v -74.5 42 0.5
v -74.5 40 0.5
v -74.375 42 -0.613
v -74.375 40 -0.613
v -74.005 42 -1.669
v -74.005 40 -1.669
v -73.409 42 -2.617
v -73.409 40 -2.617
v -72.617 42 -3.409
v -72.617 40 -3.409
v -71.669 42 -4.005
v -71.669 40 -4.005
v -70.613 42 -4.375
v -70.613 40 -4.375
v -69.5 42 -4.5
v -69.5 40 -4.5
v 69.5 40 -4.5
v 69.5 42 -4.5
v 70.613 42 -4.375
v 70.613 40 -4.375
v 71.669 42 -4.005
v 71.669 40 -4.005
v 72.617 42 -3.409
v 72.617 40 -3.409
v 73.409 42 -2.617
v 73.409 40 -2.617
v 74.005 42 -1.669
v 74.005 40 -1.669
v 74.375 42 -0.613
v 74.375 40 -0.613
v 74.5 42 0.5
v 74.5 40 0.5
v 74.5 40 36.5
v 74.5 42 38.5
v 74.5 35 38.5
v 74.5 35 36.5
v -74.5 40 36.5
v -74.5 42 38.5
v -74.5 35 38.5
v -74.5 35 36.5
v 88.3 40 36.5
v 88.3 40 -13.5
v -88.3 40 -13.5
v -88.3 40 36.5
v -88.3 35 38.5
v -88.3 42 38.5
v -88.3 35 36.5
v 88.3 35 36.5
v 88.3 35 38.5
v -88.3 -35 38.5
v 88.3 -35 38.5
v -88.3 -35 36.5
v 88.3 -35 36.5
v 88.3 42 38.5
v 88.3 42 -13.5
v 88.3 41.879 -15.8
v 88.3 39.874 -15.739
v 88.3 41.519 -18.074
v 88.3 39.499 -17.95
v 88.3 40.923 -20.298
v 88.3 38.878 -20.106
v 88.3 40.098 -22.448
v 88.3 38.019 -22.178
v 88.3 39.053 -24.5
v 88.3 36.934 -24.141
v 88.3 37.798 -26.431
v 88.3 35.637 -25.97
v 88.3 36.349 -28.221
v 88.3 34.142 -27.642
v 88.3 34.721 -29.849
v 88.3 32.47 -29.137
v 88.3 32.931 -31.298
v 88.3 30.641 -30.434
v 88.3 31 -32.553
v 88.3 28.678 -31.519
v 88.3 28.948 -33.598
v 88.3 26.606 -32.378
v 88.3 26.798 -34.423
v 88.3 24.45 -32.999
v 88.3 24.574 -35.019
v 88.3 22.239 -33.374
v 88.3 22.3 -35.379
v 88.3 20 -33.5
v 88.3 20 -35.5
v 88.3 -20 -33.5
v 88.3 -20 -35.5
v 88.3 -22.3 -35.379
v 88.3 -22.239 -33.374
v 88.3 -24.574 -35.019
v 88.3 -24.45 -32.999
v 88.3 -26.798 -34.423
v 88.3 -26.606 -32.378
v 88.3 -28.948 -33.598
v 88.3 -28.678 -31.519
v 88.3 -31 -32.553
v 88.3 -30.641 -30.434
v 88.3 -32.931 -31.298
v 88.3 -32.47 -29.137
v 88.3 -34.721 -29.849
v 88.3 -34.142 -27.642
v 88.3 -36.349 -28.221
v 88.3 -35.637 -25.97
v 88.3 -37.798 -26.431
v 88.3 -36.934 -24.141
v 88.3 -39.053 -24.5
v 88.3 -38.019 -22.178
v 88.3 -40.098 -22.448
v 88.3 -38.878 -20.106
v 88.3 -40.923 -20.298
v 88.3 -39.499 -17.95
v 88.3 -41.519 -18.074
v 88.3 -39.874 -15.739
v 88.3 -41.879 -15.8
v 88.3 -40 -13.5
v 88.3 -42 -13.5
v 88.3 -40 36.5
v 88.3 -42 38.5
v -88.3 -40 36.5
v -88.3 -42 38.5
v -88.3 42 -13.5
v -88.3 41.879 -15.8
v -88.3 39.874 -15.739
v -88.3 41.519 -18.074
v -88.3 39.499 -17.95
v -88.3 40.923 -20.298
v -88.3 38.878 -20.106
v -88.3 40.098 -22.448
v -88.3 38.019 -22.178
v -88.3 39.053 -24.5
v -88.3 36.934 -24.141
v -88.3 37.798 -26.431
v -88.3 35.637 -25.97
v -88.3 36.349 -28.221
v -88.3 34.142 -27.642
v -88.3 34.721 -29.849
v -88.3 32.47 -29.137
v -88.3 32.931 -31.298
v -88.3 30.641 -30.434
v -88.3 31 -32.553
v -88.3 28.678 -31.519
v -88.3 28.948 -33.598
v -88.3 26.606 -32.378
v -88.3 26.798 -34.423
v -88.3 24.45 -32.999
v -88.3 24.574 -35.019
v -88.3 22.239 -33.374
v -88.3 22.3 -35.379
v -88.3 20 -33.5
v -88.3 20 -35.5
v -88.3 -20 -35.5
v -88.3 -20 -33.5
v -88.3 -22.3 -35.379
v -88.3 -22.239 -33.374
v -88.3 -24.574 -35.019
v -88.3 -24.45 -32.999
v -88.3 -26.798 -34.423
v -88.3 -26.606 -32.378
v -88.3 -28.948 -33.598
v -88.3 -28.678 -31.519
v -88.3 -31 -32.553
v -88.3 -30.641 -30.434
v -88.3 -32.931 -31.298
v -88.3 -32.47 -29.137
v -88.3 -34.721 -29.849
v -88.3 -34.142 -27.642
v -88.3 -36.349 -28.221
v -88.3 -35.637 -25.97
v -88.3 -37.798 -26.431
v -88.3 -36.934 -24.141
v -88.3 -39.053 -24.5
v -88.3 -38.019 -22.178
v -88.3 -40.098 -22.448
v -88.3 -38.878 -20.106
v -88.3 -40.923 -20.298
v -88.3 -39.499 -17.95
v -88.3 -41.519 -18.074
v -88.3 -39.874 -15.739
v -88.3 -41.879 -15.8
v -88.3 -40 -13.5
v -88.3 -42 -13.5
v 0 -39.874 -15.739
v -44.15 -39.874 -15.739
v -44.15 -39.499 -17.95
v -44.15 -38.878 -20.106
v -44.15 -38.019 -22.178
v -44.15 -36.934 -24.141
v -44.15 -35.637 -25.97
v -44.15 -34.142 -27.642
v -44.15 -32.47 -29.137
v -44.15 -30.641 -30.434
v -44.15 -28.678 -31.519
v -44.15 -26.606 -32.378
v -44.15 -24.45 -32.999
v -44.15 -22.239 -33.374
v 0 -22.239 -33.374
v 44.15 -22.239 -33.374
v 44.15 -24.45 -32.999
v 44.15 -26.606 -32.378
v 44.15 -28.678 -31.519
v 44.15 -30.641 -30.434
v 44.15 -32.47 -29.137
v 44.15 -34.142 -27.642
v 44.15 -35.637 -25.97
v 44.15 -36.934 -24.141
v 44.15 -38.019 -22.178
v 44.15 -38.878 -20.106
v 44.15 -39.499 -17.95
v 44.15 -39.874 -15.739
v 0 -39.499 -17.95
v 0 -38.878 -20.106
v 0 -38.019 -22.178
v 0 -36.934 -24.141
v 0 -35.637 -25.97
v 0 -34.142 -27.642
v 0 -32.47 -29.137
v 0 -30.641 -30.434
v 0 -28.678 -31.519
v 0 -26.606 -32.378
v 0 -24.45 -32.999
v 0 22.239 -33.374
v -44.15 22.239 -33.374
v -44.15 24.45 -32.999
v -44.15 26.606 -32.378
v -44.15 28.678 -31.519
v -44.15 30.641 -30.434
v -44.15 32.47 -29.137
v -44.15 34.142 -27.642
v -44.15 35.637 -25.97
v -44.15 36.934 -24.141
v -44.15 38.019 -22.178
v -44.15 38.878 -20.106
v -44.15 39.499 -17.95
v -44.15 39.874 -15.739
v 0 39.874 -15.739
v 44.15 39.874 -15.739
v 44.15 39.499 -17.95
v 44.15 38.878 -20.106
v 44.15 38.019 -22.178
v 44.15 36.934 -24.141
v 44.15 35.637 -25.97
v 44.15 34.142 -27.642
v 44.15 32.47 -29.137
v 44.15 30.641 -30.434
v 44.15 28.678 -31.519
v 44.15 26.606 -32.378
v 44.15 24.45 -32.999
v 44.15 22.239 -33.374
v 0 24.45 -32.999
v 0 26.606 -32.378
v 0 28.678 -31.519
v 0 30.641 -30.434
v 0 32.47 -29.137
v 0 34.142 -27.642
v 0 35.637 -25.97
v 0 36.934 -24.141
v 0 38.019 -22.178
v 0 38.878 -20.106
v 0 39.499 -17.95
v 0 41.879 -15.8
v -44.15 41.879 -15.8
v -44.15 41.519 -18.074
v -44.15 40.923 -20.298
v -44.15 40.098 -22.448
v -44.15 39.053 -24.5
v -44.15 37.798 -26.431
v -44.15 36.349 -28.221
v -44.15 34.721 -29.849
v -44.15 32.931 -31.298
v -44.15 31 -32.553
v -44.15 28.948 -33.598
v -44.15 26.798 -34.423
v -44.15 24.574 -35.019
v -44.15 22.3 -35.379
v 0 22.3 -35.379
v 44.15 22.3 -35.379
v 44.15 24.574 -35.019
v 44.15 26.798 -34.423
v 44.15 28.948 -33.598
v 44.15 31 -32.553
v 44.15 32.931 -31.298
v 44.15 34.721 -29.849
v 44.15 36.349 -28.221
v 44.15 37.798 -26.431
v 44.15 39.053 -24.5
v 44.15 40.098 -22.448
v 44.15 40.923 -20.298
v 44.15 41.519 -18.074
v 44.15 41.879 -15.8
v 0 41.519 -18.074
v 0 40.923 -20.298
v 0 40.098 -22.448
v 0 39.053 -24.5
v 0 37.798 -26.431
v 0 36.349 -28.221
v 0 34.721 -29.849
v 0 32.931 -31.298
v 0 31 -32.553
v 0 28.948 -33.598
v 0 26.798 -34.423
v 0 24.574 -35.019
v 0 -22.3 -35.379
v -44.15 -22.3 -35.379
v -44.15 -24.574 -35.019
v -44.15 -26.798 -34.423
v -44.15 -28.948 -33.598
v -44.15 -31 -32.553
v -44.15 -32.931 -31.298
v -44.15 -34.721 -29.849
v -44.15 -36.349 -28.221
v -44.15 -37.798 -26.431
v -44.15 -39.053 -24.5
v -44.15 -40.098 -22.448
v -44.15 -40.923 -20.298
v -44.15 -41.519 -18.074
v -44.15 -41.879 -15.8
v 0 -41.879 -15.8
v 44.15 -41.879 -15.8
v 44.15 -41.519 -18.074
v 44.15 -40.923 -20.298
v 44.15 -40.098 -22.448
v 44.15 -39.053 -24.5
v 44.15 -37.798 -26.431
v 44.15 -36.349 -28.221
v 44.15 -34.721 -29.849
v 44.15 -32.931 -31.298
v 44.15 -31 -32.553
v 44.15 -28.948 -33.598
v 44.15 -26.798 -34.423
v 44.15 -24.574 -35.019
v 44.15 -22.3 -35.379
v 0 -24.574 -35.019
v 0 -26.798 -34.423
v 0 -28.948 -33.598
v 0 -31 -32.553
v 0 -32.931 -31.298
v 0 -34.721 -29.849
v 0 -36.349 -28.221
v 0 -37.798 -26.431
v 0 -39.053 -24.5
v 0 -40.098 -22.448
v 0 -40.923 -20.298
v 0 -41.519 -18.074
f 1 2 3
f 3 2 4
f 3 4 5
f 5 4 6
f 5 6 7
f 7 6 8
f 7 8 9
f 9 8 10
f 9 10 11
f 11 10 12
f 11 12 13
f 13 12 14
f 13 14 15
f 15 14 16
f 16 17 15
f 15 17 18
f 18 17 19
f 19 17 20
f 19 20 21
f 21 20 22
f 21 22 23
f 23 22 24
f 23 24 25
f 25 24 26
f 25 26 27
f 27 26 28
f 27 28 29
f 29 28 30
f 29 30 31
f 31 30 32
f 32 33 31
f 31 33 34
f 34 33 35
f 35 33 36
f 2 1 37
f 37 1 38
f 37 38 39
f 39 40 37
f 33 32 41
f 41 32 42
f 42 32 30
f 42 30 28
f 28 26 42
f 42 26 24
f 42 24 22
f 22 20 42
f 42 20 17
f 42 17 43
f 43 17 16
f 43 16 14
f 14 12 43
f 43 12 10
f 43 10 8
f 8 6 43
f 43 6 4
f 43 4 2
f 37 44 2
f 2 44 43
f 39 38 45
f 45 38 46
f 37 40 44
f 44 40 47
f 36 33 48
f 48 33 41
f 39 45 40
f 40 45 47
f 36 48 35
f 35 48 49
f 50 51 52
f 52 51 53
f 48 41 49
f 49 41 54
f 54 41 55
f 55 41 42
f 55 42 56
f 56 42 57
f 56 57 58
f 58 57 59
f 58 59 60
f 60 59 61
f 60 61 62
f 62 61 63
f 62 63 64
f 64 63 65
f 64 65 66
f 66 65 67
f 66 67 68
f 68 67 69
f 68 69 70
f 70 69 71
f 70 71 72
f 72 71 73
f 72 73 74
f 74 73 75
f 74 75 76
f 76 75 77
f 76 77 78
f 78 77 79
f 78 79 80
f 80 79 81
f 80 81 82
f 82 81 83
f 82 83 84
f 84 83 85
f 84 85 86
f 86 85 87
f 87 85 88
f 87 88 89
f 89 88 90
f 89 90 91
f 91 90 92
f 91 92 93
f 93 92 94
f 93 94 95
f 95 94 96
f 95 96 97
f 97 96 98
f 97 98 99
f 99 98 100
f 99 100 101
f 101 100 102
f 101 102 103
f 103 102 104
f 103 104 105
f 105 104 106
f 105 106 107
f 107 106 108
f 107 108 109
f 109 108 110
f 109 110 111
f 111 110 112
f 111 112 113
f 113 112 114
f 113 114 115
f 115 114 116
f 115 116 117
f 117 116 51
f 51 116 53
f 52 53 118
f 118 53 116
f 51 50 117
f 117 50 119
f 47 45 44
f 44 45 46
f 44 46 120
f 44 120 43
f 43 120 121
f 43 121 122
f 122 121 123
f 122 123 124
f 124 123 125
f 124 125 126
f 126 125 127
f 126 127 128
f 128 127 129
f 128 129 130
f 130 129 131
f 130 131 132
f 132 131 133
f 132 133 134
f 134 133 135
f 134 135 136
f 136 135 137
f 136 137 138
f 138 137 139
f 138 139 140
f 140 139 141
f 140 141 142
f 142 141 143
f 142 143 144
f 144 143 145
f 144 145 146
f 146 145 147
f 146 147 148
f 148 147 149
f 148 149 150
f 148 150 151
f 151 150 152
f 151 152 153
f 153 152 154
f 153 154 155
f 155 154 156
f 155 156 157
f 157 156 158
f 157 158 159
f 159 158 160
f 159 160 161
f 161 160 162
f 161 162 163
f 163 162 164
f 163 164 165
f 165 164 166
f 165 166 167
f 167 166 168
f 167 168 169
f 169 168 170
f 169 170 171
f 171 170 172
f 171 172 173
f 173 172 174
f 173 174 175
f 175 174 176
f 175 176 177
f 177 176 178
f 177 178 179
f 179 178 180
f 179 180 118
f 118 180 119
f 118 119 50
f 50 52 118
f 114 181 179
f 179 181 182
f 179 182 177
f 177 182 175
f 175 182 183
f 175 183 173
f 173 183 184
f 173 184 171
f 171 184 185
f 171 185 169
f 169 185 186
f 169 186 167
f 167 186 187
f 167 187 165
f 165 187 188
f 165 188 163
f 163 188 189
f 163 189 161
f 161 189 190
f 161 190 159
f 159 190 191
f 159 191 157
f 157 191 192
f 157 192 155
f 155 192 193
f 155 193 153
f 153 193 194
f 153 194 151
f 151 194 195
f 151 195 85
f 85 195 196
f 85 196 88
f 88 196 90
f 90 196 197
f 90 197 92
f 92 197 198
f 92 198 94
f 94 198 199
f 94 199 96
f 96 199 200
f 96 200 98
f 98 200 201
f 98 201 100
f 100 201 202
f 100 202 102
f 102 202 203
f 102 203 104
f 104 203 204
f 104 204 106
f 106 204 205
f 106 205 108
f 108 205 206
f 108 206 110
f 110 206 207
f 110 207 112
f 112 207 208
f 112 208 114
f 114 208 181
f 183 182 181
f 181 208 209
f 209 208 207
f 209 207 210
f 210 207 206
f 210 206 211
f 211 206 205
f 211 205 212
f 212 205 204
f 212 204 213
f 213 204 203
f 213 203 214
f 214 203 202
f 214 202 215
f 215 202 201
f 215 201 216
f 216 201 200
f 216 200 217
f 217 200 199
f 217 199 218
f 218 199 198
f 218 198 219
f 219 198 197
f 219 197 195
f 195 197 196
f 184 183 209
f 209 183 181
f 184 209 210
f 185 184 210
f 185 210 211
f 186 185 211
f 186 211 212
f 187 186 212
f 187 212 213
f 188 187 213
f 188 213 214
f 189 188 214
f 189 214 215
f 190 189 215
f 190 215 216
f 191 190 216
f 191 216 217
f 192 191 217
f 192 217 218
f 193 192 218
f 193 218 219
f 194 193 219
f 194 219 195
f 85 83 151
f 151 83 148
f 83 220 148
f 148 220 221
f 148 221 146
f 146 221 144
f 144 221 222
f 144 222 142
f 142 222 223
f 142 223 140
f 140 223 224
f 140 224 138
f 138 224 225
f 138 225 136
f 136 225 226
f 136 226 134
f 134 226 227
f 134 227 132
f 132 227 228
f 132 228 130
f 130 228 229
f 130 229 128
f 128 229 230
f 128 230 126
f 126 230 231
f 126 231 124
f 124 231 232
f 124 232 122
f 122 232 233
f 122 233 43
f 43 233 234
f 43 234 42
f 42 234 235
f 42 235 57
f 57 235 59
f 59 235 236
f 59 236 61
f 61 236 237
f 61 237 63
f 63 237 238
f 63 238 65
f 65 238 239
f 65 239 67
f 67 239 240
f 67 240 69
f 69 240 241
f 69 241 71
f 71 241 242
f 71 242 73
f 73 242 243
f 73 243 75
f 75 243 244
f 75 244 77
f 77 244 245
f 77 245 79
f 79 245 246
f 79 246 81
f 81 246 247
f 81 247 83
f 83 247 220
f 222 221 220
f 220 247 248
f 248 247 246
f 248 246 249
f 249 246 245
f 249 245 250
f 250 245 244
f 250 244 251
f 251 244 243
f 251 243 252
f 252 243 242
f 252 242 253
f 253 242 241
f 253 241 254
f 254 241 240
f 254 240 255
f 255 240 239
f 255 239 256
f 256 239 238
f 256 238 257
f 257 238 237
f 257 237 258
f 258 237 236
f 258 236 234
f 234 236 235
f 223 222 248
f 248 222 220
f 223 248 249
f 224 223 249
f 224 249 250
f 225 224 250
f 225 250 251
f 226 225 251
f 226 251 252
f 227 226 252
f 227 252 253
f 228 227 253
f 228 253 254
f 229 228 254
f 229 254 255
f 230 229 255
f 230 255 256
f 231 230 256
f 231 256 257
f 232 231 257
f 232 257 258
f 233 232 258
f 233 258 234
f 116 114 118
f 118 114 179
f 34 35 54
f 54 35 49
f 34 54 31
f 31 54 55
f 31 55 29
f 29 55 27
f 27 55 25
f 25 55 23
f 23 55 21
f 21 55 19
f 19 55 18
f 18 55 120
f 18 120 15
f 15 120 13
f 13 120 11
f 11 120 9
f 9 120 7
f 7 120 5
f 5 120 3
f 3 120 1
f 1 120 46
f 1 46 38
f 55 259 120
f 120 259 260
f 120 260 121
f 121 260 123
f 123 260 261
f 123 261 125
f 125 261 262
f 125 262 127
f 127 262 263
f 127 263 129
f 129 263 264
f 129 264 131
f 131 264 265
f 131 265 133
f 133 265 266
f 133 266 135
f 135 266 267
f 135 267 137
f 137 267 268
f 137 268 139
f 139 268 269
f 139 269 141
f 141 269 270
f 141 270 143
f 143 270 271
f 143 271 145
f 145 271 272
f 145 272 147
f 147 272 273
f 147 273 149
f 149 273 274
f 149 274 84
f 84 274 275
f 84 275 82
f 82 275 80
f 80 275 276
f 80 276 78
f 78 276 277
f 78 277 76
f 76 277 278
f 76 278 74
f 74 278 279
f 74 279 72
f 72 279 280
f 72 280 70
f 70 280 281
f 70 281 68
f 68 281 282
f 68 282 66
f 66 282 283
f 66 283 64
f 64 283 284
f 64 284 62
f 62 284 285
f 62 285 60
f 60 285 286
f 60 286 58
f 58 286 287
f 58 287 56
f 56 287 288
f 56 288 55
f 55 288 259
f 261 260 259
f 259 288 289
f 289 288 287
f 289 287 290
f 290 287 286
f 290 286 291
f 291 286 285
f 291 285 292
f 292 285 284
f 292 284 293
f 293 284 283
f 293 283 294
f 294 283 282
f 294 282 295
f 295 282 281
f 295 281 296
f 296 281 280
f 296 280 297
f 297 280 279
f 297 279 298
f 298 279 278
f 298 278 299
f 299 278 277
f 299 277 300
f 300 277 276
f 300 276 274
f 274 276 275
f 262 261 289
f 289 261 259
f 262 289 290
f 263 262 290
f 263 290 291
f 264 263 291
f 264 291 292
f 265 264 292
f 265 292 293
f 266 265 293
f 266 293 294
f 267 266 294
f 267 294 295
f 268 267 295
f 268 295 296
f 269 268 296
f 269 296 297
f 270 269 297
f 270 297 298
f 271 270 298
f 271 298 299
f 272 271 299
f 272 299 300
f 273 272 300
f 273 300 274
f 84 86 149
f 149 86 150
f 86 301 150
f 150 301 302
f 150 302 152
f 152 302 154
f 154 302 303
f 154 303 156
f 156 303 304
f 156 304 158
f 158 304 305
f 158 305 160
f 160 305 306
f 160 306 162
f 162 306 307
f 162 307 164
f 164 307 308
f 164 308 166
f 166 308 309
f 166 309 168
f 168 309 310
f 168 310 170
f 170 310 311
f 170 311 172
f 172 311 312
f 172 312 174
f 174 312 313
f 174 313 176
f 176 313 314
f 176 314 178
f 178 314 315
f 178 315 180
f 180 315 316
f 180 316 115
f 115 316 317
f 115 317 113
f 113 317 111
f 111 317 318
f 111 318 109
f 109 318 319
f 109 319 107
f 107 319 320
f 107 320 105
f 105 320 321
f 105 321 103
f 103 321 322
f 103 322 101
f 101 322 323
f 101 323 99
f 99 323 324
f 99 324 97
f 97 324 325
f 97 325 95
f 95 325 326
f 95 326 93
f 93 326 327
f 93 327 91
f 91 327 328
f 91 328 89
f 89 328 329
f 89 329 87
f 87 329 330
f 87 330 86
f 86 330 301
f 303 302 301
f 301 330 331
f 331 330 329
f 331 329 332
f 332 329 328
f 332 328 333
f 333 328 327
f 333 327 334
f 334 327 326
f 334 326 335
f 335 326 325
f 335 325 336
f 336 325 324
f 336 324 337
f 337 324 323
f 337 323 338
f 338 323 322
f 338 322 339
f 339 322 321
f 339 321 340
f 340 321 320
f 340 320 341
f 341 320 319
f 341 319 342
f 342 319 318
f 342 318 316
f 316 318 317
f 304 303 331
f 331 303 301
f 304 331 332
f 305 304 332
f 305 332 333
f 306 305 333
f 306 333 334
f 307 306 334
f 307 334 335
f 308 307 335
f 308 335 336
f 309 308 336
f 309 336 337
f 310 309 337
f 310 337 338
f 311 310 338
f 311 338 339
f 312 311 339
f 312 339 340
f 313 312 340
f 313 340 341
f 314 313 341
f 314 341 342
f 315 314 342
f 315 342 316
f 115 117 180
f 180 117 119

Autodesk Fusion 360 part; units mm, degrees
sketch "スケッチ1" plane through (0, 0, 0) normal (1, 0, 0) x (0, 1, 0)
  line L0 (-40, 36.5) -> (40, 36.5)
  line L1 (40, 36.5) -> (40, -13.5)
  line L2 (20, -33.5) -> (-20, -33.5)
  line L3 (-40, -13.5) -> (-40, 36.5)
  arc A0 (20, -33.5) -> (40, -13.5) centre (20, -13.5) ccw
  arc A1 (-40, -13.5) -> (-20, -33.5) centre (-20, -13.5) ccw
  line L4 (-42, 38.5) -> (42, 38.5)
  line L5 (42, 38.5) -> (42, -13.5)
  line L6 (20, -35.5) -> (-20, -35.5)
  line L7 (-42, -13.5) -> (-42, 38.5)
  arc A2 (20, -35.5) -> (42, -13.5) centre (20, -13.5) ccw
  arc A3 (-42, -13.5) -> (-20, -35.5) centre (-20, -13.5) ccw
  point P0 (-40, -33.5)
  dimension "d1" = 80
  dimension "d2" = 70
  dimension "d3" = 33.5
  dimension "d4" = 40
  dimension "d5" = 20
  dimension "d6" = 20
  dimension "d7" = 2
  dimension "d8" = 2
  dimension "d9" = 2
  dimension "d10" = 2
  dimension "d11" = 22
  dimension "d12" = 22
extrude "押し出し1" add sketch "スケッチ1" along normal mid plane 176.6
sketch "スケッチ2" plane through (0, 0, 0) normal (0, 0, 1) x (1, 0, 0)
  line L0 (-90, 35) -> (90, 35)
  line L1 (90, 35) -> (90, -35)
  line L2 (90, -35) -> (-90, -35)
  line L3 (-90, -35) -> (-90, 35)
  dimension "d15" = 180
  dimension "d16" = 90
  dimension "d17" = 70
  dimension "d18" = 35
extrude "押し出し2" cut sketch "スケッチ2" along normal blind 50
sketch "スケッチ3" plane through (0, 0, 0) normal (0, 1, 0) x (1, 0, 0)
  line L0 (74.5, -45.5) -> (-74.5, -45.5)
  line L1 (-74.5, -45.5) -> (-74.5, 4.5)
  line L2 (-74.5, 4.5) -> (74.5, 4.5)
  line L3 (74.5, 4.5) -> (74.5, -45.5)
  dimension "d21" = 149
  dimension "d22" = 74.5
  dimension "d23" = 50
  dimension "d29" = 4.5
extrude "押し出し3" cut sketch "スケッチ3" along normal blind 45
fillet "フィレット1" radius 5 2 edges at (74.5, 41, -4.5) (-74.5, 41, -4.5)
equation "d3 = ( 67 / 2 ) * 1 mm"
equation "d4 = ( 80 / 2 ) * 1 mm"
equation "d13 = ( 176.6 / 2 ) * 1 mm"
equation "d17 = 80 mm - 10 mm"
equation "d18 = ( 70 / 2 ) * 1 mm"
equation "d22 = ( 149 / 2 ) * 1 mm"
